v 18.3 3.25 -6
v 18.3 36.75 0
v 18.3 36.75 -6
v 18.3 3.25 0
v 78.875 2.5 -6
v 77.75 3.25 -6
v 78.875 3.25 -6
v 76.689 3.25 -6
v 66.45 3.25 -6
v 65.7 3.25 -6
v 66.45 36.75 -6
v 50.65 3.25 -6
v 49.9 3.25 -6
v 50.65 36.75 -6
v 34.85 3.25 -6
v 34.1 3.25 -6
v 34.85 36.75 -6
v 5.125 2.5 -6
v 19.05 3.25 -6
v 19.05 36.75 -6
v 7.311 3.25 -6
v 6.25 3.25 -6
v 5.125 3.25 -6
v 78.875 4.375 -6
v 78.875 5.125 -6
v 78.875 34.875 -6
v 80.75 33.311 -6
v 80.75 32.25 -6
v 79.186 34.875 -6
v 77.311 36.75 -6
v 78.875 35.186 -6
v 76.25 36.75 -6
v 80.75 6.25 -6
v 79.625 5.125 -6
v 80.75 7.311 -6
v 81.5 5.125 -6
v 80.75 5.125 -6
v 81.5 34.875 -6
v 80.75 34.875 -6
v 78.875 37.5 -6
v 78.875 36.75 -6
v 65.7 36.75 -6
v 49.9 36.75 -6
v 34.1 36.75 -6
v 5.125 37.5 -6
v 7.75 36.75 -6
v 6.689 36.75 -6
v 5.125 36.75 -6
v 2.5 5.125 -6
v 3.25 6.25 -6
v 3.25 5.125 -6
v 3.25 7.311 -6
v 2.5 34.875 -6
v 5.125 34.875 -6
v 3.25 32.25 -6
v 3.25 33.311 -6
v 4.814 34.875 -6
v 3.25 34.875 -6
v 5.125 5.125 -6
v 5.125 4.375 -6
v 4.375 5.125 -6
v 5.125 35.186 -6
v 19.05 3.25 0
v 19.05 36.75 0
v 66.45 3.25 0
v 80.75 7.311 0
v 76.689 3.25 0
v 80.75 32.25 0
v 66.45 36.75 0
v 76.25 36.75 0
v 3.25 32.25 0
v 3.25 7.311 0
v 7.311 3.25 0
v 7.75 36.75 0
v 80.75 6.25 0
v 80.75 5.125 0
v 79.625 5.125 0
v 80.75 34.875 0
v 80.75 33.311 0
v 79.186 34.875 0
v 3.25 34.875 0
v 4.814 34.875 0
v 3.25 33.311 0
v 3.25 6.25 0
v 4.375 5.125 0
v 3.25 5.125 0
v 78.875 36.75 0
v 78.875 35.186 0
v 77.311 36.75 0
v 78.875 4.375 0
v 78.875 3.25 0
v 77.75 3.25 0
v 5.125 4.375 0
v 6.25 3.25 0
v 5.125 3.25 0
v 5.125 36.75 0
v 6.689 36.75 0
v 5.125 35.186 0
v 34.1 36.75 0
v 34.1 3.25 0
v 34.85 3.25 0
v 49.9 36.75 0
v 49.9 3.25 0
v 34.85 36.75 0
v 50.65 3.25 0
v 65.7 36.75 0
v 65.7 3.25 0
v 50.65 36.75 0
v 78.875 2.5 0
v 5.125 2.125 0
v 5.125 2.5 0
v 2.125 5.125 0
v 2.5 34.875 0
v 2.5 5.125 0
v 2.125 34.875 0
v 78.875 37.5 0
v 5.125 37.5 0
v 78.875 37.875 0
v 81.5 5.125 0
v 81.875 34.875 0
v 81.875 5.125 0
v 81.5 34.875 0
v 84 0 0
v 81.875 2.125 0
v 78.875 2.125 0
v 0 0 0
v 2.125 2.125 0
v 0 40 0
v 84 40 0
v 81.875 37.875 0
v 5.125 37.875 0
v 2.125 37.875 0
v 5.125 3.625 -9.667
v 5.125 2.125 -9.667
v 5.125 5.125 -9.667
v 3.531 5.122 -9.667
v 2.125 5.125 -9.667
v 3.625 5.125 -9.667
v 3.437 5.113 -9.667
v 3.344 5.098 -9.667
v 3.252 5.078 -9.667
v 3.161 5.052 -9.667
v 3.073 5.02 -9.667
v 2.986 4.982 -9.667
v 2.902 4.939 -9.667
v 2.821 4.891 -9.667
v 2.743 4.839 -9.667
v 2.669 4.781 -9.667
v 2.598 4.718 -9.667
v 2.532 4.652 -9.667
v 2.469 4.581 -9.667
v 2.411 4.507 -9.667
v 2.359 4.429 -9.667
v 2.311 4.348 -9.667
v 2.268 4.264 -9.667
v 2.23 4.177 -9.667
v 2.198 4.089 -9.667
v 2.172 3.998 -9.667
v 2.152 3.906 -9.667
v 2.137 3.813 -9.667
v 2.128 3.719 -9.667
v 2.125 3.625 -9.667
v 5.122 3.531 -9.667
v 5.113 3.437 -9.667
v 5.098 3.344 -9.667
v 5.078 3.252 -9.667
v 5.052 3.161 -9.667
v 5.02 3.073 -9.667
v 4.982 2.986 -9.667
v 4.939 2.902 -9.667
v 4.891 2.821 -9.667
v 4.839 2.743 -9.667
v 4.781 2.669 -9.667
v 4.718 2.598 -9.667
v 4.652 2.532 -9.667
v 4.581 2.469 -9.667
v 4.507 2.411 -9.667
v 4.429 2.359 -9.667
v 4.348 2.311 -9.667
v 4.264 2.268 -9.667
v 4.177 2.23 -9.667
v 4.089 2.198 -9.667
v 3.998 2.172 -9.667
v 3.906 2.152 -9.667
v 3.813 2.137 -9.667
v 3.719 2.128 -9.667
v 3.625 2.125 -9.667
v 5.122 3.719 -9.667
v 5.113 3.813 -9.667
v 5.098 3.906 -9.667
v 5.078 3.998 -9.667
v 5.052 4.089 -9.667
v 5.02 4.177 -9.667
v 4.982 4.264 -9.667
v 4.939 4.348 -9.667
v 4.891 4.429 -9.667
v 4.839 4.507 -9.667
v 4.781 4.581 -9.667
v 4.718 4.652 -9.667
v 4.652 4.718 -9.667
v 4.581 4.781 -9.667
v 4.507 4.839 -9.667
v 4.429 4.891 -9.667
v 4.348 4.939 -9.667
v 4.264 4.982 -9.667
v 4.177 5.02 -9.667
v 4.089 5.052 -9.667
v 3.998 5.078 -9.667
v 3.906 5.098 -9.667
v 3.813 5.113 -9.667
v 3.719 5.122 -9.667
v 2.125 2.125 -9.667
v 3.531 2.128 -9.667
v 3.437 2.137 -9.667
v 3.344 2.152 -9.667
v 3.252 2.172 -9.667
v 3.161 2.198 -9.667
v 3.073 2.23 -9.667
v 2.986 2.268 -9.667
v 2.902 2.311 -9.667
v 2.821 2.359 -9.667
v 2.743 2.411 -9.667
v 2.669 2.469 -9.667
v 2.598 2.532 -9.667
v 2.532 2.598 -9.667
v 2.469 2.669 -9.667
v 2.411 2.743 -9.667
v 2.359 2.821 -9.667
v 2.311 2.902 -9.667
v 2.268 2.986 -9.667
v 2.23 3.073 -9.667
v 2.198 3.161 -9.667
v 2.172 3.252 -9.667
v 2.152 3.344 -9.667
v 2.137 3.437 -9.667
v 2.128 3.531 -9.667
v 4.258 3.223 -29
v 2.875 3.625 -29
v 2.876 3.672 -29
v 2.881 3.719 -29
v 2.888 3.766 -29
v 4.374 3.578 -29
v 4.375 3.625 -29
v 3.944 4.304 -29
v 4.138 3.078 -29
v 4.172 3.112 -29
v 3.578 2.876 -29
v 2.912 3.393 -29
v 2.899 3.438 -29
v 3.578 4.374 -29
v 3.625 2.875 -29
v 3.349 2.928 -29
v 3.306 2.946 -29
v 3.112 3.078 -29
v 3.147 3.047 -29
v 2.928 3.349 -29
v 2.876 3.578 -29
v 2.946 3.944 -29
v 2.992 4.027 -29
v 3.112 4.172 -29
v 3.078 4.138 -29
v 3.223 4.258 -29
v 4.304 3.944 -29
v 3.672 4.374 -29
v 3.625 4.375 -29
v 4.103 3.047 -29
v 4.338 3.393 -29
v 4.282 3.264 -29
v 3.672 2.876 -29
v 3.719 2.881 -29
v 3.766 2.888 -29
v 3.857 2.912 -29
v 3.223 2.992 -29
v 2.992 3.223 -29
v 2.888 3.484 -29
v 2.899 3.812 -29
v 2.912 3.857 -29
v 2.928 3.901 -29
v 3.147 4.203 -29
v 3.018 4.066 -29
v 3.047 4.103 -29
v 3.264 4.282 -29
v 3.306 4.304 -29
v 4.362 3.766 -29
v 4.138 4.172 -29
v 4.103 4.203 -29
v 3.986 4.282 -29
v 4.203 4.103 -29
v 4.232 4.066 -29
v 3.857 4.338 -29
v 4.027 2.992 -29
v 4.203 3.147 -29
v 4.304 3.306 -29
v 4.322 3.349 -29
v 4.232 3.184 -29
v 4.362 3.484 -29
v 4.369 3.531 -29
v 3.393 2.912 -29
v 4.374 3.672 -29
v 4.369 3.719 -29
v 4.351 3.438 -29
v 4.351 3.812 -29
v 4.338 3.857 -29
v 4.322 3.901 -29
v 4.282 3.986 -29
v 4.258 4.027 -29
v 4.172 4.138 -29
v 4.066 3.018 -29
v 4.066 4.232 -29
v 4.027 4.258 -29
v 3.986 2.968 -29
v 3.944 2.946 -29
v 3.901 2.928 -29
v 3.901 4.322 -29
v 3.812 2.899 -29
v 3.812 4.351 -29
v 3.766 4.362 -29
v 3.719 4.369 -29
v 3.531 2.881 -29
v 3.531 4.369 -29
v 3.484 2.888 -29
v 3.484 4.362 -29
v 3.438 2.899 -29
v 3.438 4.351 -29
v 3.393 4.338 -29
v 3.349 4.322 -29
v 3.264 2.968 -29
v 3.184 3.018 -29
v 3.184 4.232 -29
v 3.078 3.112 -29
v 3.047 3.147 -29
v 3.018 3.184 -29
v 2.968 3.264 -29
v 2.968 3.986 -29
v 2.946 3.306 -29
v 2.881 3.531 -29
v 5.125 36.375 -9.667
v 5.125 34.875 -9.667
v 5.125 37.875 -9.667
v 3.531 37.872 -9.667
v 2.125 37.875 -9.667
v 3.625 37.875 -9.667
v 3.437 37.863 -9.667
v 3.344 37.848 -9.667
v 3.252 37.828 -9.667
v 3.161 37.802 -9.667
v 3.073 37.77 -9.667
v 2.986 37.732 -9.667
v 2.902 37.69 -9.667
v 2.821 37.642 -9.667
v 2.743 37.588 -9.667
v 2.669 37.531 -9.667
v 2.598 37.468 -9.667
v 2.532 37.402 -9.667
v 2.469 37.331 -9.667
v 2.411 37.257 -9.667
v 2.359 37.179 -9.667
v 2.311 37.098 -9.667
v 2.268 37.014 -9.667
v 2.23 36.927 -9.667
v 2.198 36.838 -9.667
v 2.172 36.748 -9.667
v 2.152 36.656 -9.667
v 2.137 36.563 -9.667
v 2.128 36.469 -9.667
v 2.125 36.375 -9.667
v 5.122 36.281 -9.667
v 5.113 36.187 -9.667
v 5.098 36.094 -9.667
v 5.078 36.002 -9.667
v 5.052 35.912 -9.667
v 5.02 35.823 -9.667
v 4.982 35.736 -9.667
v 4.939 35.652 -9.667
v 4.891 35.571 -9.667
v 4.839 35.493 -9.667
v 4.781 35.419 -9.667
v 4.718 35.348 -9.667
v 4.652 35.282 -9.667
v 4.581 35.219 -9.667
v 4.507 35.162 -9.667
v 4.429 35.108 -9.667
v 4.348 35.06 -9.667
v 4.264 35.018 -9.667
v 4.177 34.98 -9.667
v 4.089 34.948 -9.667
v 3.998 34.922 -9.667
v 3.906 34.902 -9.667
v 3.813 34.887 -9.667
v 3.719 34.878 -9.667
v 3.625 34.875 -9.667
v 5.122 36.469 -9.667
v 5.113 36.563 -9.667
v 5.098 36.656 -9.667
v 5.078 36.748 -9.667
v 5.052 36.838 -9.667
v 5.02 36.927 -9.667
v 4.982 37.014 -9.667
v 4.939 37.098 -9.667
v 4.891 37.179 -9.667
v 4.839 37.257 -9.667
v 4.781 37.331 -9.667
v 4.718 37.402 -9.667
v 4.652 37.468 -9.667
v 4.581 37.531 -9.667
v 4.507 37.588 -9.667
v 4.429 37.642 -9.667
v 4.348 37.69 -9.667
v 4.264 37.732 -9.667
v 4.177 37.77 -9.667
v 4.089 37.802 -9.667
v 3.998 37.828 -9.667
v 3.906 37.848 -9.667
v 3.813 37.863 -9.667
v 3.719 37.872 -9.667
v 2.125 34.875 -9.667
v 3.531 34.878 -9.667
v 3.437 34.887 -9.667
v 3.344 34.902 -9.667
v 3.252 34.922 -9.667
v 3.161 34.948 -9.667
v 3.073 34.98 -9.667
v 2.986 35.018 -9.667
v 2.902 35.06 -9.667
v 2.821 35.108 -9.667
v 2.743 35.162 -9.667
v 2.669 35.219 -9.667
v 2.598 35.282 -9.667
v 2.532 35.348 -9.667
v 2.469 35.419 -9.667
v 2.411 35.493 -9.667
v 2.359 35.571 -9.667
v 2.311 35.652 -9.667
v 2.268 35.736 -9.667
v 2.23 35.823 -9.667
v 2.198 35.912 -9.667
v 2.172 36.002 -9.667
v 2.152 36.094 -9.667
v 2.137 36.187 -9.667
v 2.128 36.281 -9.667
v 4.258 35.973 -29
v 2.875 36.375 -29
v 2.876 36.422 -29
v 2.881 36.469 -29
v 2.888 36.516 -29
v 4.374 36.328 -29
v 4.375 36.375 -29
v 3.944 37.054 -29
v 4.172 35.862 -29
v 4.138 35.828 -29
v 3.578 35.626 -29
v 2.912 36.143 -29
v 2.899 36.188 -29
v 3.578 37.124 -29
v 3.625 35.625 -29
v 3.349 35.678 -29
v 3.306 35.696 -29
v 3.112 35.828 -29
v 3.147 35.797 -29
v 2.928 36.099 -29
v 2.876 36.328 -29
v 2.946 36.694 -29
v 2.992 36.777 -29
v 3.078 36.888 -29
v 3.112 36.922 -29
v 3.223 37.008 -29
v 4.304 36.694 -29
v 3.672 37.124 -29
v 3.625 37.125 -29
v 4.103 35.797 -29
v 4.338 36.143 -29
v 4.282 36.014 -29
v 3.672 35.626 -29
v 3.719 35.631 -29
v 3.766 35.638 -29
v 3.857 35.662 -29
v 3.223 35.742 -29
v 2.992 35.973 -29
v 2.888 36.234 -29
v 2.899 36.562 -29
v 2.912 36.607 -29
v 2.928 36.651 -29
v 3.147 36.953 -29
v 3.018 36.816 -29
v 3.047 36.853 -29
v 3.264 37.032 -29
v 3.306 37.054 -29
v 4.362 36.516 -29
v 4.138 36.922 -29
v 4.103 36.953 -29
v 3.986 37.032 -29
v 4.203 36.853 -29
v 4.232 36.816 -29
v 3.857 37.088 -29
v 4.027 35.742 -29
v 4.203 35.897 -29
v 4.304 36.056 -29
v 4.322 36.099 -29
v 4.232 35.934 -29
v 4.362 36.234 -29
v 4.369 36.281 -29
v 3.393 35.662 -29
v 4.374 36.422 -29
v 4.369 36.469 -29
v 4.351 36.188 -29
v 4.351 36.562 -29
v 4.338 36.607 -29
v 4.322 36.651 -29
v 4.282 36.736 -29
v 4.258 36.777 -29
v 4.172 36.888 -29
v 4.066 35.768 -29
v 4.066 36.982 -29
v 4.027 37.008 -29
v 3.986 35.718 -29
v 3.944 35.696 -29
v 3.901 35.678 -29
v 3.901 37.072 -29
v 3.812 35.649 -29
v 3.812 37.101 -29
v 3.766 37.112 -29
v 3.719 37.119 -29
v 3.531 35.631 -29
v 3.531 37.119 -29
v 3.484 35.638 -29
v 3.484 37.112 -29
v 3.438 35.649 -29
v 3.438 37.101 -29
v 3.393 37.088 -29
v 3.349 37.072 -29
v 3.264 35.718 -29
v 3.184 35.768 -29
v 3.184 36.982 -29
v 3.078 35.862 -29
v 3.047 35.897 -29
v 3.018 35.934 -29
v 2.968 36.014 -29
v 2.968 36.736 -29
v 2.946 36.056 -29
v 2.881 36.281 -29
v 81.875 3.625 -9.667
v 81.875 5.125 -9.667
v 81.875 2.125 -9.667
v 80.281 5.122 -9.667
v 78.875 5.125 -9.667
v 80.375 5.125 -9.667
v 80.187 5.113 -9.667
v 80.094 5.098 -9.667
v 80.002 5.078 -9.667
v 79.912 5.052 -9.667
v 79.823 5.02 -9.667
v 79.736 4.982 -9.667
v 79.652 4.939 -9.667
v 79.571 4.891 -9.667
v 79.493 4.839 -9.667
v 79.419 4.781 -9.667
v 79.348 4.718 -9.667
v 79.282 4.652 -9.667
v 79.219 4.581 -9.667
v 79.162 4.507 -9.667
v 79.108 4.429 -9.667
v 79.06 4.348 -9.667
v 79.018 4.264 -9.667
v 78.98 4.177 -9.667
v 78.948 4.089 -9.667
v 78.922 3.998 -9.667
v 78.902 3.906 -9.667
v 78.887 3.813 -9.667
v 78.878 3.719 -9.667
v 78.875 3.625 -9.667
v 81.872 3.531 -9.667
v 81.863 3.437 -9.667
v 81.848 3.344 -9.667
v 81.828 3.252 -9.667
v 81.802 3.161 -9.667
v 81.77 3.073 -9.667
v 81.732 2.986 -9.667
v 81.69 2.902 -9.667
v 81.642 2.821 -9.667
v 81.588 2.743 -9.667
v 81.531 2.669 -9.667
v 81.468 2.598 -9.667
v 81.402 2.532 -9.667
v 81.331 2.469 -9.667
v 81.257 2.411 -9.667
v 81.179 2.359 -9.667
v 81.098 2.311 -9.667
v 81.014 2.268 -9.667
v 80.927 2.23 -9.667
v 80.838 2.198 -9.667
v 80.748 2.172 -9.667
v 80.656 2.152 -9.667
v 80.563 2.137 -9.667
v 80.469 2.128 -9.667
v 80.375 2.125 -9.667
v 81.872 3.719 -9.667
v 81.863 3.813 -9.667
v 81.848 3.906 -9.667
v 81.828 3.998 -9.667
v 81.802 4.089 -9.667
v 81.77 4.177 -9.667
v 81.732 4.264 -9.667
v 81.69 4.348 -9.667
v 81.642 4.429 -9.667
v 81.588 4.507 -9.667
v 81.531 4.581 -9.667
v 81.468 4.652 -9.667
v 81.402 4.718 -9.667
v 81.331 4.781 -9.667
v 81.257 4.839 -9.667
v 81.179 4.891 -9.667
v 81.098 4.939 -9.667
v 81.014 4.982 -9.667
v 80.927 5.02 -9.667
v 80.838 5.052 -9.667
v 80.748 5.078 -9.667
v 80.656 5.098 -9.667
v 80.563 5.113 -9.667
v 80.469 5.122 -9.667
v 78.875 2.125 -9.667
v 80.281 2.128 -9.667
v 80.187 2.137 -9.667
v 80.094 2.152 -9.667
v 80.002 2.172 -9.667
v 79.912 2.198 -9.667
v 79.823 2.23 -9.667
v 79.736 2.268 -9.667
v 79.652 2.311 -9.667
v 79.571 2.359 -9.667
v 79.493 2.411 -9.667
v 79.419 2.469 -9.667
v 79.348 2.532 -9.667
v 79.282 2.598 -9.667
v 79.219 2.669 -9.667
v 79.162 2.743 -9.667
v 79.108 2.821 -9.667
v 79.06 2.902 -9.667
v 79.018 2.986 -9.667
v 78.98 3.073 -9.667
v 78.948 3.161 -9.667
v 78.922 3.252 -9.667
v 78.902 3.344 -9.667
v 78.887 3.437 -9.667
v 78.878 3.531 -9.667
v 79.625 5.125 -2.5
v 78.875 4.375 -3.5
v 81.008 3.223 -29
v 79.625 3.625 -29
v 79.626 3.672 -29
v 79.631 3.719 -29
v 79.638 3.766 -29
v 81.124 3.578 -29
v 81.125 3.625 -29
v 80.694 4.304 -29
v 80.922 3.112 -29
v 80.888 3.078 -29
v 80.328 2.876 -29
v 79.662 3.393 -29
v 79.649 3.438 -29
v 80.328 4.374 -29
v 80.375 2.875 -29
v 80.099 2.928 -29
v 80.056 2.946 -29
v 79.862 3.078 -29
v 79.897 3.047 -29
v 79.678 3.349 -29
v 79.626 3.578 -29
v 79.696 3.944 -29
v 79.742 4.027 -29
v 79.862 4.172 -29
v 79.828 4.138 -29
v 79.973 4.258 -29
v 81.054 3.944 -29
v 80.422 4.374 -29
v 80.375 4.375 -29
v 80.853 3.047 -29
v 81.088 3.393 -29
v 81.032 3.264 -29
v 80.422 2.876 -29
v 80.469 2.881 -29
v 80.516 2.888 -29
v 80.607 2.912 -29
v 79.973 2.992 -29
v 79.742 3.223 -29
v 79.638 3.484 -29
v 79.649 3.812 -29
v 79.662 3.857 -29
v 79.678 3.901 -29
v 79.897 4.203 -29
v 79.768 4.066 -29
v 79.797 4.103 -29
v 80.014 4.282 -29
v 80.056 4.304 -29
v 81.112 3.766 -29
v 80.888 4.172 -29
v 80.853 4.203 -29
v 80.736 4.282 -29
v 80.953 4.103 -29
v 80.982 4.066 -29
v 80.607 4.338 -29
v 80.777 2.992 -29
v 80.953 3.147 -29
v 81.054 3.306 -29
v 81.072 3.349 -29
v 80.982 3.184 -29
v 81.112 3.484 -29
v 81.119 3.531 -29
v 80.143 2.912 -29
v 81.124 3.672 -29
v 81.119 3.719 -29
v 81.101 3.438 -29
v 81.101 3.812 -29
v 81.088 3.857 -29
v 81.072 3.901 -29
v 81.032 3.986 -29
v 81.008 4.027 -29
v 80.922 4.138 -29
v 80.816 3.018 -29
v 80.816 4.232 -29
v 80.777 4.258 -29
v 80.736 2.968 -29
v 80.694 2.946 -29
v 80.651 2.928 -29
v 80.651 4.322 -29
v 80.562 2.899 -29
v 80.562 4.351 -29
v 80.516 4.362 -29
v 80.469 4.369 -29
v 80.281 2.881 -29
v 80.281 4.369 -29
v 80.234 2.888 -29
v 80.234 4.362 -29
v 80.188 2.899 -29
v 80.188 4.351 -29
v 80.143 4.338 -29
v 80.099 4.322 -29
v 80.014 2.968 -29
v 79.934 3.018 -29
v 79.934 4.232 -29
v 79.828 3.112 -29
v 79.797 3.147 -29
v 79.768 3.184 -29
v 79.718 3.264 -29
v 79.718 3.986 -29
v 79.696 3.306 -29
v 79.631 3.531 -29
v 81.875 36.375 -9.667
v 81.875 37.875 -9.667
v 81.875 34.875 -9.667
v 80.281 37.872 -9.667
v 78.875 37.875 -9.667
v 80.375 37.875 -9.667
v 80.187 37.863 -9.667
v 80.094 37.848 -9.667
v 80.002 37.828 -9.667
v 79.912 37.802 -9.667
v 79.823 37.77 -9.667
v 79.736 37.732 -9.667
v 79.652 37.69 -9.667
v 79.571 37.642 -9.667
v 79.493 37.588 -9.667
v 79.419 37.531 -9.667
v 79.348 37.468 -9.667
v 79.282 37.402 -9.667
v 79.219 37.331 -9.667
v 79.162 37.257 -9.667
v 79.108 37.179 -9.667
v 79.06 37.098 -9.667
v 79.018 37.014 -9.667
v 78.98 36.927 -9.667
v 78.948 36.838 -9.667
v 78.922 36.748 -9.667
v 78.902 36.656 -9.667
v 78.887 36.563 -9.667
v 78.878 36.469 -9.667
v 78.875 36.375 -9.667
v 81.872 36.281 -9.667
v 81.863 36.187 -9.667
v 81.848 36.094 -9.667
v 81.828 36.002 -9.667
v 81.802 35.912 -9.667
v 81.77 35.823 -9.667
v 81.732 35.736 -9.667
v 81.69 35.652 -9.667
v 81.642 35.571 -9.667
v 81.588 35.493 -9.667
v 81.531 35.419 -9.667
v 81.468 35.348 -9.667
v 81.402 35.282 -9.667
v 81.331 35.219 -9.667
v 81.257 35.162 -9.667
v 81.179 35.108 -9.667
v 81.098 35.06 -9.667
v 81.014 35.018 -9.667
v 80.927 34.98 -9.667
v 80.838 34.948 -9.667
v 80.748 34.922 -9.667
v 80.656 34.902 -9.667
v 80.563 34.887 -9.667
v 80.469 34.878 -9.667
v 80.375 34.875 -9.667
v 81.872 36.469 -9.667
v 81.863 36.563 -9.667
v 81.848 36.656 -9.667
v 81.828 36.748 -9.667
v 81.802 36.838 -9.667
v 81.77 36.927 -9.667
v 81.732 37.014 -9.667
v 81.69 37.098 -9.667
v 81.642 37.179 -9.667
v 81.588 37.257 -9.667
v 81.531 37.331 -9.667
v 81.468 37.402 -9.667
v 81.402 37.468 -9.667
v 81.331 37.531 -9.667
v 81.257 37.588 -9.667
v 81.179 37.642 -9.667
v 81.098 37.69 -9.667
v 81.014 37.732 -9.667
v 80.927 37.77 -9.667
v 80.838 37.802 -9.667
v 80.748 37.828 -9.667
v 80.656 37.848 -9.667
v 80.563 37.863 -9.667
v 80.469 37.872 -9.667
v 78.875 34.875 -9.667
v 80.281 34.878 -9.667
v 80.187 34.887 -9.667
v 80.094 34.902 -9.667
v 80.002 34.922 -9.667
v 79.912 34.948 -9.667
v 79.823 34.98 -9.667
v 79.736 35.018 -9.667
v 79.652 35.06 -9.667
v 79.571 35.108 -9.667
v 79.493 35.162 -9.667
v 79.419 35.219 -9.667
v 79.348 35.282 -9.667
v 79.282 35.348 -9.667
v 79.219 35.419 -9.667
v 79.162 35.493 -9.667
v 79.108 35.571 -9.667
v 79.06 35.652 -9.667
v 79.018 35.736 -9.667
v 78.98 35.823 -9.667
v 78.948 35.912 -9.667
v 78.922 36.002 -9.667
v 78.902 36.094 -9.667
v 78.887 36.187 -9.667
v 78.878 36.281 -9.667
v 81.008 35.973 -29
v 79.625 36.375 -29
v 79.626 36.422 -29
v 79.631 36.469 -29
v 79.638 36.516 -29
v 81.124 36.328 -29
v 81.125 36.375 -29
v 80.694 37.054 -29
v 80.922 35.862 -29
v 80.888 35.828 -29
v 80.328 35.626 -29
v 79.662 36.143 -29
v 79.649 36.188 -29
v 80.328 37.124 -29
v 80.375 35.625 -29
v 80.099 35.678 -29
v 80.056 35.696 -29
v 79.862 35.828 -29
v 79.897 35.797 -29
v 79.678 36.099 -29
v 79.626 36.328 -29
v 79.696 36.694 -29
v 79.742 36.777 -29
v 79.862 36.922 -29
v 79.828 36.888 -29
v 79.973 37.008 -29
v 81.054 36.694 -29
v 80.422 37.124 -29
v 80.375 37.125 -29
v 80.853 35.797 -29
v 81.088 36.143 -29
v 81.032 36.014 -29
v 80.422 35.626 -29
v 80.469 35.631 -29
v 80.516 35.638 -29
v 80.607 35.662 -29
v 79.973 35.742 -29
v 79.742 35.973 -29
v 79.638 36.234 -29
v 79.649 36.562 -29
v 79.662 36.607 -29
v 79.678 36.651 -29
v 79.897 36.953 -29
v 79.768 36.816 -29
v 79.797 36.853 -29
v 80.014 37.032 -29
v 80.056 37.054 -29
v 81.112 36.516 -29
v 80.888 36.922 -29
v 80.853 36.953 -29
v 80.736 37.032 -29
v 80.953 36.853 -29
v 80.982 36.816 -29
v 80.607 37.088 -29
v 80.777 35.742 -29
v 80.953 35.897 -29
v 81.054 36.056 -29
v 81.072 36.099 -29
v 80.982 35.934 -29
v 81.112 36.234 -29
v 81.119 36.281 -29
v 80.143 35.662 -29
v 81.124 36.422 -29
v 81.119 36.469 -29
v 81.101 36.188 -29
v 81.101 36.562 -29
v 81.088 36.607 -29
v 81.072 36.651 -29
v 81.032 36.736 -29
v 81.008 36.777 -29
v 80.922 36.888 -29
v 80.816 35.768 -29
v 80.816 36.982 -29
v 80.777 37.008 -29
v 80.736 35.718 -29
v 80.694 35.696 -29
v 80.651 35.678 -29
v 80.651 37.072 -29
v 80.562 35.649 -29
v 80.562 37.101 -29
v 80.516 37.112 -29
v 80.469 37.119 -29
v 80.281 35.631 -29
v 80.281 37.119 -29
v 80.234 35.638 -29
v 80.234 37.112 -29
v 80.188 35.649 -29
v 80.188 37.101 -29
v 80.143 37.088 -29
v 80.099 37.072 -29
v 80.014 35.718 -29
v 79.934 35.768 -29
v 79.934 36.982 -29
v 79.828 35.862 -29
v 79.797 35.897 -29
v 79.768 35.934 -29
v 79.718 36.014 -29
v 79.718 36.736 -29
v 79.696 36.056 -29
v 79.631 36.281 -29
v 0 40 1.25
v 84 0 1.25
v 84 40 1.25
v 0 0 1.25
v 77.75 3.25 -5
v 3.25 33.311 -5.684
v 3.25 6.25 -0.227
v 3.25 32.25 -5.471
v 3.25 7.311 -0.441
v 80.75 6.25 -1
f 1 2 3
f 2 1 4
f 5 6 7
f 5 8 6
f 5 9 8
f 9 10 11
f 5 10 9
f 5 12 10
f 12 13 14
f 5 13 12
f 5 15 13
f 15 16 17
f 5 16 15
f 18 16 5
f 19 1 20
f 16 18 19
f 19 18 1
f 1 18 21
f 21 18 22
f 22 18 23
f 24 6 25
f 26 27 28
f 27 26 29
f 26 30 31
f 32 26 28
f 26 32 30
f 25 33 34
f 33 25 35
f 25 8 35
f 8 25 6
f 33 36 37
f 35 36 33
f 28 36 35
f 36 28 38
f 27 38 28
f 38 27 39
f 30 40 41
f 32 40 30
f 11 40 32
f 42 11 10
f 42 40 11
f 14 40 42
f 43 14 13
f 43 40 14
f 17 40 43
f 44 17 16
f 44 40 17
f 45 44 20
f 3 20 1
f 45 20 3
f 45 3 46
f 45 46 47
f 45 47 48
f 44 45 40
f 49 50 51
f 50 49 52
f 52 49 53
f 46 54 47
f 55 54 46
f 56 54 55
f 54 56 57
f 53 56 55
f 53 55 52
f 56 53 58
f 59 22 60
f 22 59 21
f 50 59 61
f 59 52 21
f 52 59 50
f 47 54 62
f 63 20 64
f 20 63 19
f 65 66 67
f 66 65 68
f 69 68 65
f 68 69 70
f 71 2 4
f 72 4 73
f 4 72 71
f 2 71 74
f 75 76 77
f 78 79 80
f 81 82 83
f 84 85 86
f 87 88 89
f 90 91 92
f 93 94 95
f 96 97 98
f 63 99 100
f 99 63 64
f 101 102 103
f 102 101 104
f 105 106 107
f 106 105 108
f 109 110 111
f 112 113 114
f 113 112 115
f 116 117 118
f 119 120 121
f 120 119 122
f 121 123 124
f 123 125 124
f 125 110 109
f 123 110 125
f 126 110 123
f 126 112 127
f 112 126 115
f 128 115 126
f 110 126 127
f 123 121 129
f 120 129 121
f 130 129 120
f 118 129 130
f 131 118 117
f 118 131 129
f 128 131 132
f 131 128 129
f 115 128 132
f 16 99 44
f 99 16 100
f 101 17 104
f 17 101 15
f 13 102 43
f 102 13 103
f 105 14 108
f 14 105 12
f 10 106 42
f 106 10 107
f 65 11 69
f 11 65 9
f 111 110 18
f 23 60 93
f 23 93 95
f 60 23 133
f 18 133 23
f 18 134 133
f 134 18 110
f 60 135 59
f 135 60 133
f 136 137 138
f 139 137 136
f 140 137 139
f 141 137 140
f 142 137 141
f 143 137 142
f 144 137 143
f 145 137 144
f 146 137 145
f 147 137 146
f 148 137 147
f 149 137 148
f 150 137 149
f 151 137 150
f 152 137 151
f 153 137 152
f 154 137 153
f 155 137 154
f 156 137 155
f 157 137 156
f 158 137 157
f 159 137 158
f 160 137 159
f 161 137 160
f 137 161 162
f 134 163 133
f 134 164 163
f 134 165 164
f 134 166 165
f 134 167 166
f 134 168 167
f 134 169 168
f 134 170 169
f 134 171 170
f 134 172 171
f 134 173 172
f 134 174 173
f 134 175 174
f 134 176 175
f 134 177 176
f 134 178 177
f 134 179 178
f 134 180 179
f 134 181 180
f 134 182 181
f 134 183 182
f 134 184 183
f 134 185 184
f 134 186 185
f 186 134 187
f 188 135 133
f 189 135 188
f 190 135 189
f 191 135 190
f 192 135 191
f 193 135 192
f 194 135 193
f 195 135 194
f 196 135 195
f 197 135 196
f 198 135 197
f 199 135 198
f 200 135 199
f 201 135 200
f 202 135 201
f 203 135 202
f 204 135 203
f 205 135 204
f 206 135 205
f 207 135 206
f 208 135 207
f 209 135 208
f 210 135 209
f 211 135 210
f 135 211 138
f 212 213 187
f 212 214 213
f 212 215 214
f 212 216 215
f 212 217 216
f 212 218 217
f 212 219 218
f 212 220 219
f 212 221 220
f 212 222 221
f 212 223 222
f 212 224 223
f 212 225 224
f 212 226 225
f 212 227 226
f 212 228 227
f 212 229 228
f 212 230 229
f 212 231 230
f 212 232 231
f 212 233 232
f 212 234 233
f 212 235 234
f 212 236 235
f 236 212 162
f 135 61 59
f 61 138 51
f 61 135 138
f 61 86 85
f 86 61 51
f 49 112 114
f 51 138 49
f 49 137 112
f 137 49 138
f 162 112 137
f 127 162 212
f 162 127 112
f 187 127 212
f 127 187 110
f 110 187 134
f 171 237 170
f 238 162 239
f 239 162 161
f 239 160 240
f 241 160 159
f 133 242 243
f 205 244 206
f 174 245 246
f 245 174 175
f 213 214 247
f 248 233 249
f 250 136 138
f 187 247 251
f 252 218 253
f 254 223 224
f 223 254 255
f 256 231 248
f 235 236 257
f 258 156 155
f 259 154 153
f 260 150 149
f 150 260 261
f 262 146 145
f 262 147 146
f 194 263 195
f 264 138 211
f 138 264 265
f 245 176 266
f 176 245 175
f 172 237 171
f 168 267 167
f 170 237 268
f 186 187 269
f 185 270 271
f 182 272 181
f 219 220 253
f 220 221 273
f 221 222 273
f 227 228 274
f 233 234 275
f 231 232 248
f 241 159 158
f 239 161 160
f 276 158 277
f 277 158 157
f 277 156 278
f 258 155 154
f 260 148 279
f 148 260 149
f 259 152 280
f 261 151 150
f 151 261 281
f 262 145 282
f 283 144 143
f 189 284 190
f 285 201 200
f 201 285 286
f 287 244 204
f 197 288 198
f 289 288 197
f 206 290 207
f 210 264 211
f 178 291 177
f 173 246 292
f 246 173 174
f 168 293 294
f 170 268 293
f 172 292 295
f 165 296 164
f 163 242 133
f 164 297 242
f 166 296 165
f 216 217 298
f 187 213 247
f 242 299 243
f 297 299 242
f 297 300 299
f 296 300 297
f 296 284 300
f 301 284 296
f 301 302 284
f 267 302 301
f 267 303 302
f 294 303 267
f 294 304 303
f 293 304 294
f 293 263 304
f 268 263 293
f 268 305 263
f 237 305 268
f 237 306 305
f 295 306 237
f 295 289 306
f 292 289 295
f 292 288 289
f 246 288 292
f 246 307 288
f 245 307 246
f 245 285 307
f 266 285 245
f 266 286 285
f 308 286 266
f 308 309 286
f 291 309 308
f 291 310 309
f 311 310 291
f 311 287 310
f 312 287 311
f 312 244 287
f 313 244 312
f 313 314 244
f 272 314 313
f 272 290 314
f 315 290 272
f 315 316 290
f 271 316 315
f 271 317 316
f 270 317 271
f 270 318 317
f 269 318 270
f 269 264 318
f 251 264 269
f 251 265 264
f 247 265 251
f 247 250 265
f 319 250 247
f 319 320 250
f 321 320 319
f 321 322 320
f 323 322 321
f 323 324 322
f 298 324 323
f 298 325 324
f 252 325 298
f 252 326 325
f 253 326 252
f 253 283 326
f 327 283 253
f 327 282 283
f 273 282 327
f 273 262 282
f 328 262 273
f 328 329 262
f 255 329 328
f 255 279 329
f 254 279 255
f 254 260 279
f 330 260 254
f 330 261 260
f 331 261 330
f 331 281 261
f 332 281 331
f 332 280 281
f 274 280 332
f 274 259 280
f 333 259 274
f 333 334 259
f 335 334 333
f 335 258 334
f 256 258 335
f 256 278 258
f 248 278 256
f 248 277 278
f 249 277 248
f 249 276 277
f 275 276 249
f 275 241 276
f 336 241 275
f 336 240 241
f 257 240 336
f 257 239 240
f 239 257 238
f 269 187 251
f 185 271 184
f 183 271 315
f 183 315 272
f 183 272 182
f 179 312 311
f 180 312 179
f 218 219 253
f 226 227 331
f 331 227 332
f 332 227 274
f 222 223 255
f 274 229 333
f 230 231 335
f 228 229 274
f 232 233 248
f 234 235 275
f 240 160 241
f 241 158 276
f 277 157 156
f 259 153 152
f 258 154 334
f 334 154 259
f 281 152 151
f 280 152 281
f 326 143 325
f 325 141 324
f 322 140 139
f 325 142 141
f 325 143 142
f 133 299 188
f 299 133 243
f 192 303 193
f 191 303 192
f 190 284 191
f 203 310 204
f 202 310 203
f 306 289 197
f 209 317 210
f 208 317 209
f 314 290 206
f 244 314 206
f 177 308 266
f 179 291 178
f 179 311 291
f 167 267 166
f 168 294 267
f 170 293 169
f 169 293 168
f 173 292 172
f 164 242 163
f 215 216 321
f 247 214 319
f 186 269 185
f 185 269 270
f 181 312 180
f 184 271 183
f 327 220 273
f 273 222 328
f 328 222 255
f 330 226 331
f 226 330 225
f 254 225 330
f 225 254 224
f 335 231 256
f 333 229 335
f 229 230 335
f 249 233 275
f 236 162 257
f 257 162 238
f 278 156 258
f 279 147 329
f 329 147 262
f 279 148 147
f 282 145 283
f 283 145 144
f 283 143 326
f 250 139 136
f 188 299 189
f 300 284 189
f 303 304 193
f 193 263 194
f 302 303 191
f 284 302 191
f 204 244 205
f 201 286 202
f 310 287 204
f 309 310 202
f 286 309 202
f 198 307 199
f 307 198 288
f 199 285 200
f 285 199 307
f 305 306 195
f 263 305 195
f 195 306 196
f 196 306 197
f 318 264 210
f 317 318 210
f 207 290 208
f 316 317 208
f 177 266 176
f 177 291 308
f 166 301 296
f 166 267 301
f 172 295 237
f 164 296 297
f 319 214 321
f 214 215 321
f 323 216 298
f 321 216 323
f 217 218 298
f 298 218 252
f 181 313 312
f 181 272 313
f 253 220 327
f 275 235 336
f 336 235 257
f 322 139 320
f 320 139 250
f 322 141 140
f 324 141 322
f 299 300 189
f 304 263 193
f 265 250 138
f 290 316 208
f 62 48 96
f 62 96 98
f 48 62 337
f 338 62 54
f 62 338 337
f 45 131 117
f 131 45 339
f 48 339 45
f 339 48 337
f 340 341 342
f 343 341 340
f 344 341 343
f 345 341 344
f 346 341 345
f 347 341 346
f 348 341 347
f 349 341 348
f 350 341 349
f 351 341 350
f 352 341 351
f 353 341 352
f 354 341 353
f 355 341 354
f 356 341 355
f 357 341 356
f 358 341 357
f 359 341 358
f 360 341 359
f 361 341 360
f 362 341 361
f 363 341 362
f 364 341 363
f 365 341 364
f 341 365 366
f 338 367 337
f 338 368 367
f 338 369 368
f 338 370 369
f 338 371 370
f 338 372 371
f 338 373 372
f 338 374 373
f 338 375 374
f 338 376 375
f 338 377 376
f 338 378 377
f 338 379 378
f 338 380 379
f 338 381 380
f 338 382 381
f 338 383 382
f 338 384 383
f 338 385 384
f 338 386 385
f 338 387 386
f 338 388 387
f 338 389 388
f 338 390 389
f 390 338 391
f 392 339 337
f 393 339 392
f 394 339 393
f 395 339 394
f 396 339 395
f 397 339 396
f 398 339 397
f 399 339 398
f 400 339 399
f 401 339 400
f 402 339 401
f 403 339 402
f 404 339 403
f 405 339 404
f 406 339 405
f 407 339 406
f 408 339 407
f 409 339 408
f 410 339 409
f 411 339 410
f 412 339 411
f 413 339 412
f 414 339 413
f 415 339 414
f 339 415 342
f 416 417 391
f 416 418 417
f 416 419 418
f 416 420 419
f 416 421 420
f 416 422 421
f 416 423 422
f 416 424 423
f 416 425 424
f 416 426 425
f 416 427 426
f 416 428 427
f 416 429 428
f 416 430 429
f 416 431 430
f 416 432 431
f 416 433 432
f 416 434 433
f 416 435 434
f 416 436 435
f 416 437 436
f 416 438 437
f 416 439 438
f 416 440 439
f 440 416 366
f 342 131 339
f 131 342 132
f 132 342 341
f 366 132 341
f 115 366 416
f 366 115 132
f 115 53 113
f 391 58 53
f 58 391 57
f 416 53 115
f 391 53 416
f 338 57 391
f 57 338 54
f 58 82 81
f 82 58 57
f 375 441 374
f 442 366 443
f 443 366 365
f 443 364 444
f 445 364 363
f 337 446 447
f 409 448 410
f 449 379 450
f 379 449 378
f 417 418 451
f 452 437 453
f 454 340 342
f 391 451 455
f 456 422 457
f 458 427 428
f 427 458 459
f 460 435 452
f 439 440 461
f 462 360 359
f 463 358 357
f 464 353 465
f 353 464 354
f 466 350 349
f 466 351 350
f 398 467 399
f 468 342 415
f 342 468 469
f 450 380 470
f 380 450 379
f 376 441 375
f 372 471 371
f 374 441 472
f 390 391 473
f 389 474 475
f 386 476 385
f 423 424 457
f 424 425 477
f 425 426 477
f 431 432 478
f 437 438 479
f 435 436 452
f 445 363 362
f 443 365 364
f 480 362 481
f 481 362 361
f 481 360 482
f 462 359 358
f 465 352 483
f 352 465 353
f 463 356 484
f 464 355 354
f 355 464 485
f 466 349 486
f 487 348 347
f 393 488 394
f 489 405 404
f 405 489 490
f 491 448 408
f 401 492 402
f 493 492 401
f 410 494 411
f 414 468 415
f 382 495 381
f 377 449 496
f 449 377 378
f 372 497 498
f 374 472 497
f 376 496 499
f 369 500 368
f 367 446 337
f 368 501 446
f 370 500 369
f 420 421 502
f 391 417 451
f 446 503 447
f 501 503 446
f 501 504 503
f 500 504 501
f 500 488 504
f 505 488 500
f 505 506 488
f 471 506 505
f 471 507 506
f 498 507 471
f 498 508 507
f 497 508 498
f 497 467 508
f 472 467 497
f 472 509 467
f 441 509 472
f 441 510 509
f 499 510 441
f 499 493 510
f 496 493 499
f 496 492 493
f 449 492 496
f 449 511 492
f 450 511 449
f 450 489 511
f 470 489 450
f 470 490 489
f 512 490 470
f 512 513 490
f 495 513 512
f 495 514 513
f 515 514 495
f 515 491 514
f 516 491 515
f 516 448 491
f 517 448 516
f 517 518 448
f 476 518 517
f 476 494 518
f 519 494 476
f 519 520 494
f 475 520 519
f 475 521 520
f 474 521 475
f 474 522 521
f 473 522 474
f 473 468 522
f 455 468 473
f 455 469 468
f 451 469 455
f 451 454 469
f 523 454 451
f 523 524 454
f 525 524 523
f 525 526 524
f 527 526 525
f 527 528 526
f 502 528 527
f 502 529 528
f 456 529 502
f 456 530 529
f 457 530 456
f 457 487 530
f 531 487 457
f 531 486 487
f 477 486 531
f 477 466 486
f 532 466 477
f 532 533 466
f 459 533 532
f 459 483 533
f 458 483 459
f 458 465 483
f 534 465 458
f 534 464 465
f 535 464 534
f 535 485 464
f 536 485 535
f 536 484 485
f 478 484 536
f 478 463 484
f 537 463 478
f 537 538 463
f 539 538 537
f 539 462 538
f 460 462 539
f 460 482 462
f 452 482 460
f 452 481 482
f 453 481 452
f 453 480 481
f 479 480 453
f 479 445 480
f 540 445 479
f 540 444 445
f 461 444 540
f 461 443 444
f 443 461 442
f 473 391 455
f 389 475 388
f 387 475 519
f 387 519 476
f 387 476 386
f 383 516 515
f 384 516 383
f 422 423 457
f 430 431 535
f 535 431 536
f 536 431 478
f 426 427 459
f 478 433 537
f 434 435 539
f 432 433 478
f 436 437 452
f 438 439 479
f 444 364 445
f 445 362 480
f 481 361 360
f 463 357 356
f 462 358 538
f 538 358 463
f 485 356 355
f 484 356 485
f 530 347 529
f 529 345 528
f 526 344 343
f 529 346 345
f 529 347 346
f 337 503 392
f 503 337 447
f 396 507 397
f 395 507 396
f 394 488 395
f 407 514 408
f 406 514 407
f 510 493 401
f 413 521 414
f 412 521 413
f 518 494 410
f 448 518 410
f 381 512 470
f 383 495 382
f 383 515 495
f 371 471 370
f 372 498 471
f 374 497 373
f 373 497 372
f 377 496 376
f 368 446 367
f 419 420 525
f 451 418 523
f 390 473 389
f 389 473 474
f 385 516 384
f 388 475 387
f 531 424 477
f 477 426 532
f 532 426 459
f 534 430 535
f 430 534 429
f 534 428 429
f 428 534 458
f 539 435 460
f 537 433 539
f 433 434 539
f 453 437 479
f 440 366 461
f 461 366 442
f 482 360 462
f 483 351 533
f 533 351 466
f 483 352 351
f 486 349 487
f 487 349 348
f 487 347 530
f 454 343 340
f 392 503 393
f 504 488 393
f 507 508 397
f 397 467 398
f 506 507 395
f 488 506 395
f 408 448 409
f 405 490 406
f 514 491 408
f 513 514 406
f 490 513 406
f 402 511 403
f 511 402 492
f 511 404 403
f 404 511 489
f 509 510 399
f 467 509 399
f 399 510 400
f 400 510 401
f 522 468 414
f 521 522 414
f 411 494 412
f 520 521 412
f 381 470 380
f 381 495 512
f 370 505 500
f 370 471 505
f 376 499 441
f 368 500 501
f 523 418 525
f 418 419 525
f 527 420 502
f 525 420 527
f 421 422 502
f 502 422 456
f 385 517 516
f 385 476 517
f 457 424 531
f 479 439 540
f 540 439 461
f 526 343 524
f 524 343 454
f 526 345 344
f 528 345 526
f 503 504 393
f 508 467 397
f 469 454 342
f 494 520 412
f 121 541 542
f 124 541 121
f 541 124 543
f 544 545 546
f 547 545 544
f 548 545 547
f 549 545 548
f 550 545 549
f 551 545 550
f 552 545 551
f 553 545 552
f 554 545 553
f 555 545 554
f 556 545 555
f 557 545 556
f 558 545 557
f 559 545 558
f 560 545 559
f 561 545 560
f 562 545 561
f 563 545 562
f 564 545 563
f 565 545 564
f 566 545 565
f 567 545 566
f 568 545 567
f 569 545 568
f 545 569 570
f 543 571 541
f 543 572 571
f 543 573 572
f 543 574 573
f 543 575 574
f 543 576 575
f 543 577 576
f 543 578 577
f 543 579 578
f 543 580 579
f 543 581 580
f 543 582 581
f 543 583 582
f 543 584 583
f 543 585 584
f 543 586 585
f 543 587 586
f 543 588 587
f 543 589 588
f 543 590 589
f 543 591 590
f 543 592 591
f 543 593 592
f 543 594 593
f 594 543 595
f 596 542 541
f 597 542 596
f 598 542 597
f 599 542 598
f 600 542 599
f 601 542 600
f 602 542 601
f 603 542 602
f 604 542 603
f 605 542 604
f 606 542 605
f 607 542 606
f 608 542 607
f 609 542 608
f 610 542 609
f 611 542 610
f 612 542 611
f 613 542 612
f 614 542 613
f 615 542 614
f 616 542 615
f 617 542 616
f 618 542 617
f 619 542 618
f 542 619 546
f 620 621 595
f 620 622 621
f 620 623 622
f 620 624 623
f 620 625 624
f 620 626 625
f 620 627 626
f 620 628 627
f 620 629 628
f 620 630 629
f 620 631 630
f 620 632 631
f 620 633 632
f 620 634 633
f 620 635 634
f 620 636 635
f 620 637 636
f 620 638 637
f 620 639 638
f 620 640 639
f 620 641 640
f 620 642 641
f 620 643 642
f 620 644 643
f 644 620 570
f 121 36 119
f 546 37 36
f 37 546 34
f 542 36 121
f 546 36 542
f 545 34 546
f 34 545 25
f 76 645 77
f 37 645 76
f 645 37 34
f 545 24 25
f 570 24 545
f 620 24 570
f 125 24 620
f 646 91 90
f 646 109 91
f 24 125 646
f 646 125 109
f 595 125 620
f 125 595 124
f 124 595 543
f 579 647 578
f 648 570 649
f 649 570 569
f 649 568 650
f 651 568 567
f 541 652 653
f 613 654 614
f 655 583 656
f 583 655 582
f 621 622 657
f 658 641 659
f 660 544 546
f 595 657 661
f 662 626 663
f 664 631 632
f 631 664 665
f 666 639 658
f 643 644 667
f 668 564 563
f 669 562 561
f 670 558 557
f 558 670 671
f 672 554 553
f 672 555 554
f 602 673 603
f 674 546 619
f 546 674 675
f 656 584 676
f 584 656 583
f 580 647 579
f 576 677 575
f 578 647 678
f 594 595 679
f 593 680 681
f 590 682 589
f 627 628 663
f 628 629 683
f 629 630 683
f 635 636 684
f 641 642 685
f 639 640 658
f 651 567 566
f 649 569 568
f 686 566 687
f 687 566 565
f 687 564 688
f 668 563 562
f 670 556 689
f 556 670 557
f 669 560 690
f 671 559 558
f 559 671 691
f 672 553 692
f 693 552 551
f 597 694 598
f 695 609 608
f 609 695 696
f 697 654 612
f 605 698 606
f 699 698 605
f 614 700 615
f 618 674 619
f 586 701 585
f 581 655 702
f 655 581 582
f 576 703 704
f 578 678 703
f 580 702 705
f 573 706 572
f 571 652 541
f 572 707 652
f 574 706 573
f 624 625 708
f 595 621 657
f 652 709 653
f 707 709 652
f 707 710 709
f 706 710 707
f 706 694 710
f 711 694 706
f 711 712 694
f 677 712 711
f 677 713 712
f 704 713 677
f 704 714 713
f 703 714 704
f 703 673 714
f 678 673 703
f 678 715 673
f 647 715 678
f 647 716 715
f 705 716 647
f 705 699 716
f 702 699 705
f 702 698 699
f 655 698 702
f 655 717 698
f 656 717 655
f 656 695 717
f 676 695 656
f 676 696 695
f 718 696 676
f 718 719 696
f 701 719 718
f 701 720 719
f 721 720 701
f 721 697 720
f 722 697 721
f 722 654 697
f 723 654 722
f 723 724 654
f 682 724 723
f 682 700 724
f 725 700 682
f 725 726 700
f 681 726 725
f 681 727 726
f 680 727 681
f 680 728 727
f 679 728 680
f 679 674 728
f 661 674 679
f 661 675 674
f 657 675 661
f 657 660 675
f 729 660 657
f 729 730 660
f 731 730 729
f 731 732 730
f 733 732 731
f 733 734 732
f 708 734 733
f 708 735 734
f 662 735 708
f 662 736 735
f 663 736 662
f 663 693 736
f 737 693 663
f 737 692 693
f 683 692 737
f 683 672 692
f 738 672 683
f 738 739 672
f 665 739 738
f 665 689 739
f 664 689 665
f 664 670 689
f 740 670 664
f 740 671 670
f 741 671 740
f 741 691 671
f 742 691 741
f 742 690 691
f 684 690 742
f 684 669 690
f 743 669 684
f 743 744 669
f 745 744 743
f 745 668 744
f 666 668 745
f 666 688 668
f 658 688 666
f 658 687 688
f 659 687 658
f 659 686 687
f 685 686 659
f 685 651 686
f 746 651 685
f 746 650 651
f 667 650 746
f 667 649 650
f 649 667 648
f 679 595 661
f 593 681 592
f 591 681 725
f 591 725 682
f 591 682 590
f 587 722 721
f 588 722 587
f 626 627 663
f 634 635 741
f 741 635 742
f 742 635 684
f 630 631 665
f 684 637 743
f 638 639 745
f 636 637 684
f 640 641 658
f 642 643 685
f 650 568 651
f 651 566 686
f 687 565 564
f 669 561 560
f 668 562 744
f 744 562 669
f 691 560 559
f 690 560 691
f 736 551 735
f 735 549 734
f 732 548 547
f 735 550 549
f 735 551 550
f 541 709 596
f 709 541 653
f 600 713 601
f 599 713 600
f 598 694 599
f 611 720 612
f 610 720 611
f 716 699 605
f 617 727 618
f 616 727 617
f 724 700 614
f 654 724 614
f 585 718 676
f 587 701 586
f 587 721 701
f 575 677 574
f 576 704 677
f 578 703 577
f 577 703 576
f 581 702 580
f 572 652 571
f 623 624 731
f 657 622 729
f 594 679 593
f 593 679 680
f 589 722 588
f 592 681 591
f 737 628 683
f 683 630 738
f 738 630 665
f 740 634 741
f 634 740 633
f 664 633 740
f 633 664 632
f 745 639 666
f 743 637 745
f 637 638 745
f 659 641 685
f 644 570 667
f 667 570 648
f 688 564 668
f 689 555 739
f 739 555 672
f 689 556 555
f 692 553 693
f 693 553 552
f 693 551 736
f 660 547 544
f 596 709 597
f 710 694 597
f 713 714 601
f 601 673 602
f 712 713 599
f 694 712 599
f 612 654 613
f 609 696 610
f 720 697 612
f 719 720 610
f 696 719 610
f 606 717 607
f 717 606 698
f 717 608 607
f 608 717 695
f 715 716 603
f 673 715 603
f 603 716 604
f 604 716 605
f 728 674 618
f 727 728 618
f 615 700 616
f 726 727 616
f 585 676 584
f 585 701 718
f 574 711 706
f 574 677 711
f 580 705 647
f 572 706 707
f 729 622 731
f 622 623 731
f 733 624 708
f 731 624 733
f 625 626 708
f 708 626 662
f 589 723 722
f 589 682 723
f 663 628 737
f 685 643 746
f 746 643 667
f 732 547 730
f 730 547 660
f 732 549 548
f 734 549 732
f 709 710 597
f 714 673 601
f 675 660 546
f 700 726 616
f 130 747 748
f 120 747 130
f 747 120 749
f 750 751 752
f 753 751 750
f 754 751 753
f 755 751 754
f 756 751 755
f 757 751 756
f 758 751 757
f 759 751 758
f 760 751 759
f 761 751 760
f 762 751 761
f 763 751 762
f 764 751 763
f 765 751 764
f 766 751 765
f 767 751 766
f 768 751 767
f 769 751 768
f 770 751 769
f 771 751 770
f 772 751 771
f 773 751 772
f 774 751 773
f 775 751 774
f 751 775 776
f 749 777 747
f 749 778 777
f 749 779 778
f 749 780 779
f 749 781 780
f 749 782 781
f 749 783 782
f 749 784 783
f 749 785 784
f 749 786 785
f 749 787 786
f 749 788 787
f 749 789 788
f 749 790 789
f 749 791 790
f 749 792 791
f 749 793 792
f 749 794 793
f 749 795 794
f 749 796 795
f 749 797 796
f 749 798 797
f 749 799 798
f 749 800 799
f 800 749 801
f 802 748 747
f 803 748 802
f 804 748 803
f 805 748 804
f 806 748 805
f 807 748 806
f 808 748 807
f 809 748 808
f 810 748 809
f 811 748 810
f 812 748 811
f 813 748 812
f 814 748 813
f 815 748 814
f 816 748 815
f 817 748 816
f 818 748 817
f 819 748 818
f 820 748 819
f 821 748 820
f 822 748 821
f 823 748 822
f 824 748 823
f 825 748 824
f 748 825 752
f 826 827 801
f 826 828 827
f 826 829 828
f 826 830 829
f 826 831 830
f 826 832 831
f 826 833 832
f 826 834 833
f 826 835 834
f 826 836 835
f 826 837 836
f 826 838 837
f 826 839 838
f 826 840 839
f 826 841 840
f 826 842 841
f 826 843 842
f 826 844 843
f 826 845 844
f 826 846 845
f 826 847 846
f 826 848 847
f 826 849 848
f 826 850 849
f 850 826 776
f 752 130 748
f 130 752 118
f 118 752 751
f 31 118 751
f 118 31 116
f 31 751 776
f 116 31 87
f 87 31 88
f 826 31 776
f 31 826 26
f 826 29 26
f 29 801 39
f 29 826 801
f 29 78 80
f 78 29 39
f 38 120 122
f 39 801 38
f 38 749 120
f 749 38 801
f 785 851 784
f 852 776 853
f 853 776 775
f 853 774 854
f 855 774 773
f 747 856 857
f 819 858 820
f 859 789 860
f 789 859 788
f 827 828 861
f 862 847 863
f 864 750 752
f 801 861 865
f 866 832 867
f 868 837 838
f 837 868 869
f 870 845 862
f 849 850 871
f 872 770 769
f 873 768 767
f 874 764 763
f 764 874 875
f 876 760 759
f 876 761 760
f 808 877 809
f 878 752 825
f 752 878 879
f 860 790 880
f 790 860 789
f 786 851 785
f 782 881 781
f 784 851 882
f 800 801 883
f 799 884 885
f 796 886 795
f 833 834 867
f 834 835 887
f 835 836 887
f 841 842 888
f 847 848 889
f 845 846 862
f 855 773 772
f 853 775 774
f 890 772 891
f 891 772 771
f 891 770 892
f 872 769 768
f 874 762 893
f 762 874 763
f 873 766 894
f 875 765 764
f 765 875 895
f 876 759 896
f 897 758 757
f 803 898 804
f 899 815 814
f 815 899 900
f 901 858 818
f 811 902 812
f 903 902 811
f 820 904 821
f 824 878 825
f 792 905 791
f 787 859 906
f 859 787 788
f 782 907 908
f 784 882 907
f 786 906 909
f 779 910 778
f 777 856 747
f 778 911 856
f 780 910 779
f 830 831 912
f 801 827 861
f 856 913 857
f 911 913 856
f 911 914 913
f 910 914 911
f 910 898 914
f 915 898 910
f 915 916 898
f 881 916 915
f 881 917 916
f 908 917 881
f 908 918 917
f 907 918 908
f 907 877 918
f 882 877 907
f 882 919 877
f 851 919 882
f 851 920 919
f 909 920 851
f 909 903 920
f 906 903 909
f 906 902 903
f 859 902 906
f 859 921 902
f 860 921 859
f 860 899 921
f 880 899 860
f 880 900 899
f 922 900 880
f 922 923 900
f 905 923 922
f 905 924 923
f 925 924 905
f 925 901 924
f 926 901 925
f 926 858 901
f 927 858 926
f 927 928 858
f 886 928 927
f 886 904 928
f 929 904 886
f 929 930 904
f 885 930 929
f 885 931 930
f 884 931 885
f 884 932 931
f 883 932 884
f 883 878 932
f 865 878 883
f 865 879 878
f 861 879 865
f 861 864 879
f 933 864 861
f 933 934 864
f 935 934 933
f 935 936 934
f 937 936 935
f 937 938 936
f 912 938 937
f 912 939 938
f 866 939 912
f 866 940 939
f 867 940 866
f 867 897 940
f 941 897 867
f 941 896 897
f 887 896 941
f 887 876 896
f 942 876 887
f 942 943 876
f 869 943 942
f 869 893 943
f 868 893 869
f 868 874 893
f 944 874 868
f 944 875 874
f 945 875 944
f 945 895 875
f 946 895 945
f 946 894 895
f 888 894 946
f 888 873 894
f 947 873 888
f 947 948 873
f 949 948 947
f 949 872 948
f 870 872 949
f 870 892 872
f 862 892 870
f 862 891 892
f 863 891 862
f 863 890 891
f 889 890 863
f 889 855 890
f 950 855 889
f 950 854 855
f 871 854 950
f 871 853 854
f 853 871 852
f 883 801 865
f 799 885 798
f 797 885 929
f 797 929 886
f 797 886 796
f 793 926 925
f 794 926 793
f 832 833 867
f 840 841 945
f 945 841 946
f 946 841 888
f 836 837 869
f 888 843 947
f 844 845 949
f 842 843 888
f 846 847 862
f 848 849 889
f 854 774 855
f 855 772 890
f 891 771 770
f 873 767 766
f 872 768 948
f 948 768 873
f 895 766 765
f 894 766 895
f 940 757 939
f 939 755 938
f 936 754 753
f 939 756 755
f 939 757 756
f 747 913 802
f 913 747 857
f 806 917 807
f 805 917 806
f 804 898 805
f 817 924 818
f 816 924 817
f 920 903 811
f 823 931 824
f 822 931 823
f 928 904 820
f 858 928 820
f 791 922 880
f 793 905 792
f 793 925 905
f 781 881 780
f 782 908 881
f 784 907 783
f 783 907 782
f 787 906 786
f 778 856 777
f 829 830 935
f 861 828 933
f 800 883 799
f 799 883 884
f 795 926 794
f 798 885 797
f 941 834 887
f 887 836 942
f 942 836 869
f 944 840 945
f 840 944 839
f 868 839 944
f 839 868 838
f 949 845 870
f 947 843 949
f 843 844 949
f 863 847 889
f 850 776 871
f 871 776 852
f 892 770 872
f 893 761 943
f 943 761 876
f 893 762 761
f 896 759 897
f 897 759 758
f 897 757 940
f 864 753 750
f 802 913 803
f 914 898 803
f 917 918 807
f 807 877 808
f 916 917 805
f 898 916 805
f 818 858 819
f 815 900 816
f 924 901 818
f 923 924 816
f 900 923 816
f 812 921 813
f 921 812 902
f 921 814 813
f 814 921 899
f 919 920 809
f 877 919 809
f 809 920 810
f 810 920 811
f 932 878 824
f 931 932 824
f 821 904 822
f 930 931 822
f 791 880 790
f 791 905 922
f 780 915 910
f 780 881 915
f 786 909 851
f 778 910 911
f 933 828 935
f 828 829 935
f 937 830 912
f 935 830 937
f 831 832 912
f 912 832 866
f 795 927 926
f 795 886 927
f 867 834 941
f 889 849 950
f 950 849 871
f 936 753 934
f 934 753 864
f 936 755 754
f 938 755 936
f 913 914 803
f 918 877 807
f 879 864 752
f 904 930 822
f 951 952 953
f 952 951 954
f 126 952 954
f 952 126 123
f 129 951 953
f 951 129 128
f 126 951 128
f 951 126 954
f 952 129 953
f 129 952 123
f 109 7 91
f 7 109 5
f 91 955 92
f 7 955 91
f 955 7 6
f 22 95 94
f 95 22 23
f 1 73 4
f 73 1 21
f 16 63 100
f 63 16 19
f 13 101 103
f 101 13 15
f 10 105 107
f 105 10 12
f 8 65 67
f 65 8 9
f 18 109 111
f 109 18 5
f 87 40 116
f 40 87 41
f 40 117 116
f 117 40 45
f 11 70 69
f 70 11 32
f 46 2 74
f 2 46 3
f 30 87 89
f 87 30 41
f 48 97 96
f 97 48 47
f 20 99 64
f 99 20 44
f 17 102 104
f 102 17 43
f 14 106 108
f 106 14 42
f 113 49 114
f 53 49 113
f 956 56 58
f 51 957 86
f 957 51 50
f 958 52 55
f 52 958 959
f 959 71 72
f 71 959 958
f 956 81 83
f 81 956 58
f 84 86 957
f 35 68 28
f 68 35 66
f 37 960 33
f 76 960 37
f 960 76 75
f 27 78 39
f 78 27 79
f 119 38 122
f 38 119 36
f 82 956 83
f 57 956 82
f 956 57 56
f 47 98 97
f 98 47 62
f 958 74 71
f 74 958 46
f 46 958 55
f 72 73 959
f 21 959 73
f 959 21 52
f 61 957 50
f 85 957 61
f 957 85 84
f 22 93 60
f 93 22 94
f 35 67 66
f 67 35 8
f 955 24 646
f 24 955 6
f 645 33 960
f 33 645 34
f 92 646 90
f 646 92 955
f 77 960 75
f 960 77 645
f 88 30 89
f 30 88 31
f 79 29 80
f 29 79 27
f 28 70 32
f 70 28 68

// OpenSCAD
boards_in_top = 8;
table_top_thickness = 5/4;

leg_offset = 3/8;
leg_length = 29;
leg_width = 3;

apron_thickness = .75;
apron_width = 6;
apron_overhang = 2.5;
apron_tenon_length = 3/8;
apron_overhang_end = apron_overhang;

table_height = 30;
table_length = 12 * 7;
table_width = 40;

breadboard_width = 12;
breadboard_tenon_length = 2.5;
breadboard_mortice_length = 1.25;
breadboard_tenon_thickness = table_top_thickness / 2;
breadboard_tenon_shoulder_length = table_top_thickness;

color( "SaddleBrown" ) union() {
    tabletop();
}

color( "white" ) union() {
    apron();
    legs();
}

module board( size, label = false ) {
    // size[0] is always with the grain.
    // size[1] is against the grain.
    // size[2] is the board thickness.
    
    cube( size = size );
    
    // Output the size of the board for easy cut lists.
    echo( str( size[2], " ", label, ": ", size[0], "x", size[1], " ", (size[0] * size[1] * size[2] / 144), " board feet" ) );
}

module leg() {
    square_length = leg_length / 3;
    taper_length = leg_length * 2 / 3;
    rotate( [ 0, 90, 0 ] ) union() {        
        cube( size = [ square_length, leg_width, leg_width ] );
        translate( [ square_length, leg_width / 2, leg_width / 2 ] ) rotate( [ 0, 90, 0 ] ) cylinder( r1 = leg_width / 2, r2 = leg_width / 4, h = taper_length, $fn = 100 );
    }
}

module apron() {
    // Long apron pieces.
    translate( [ apron_overhang_end + leg_width - leg_offset, apron_overhang, 0 ] ) rotate( [ -90, 0, 0 ] ) board( size = [ table_length - ( apron_overhang_end * 2 ) - ( leg_width * 2 ) + ( leg_offset * 2 ), apron_width, apron_thickness ], label="apron" );
    translate( [ apron_overhang_end + leg_width - leg_offset, table_width - apron_thickness - apron_overhang, 0 ] ) rotate( [ -90, 0, 0 ] ) board( size = [ table_length - ( apron_overhang_end * 2 ) - ( leg_width * 2 ) + ( leg_offset * 2 ), apron_width, apron_thickness ], label="apron" );

    // Short apron sides.
    translate( [ apron_thickness + apron_overhang_end, apron_overhang - leg_offset + leg_width, 0 ] ) rotate( [ -90, 0, 90 ] ) board( size = [ table_width - ( apron_overhang * 2 ) + ( leg_offset * 2 ) - ( leg_width * 2 ), apron_width, apron_thickness ], label="apron" );
    translate( [ table_length - apron_overhang_end, apron_overhang + leg_width - leg_offset, 0 ] ) rotate( [ -90, 0, 90 ] ) board( size = [ table_width - ( apron_overhang * 2 ) + ( leg_offset * 2 ) - ( leg_width * 2 ), apron_width, apron_thickness ], label="apron" );

    apron_reinforcements = ceil(max( 0, ( table_length - ( apron_overhang_end * 2 ) - ( apron_thickness * 2 ) ) / 24 ));

    for ( i = [ 1 : apron_reinforcements ] ) {
        translate( [ apron_overhang_end + ( apron_thickness ) + ( i * ( table_length - ( 2 * apron_overhang_end ) ) / ( apron_reinforcements + 1 )), apron_overhang + apron_tenon_length, 0 ] ) rotate( [ -90, 0, 90 ] ) board( size = [ table_width - ( apron_overhang * 2 ) - ( apron_thickness * 2 ) + ( apron_tenon_length * 2 ), apron_width, apron_thickness ], label="apron" );
    }
    
    leg_bracket_a = ( leg_width - leg_offset ) * 2 - apron_thickness;
    leg_bracket_length = sqrt( pow( leg_bracket_a, 2 ) * 2 );

    // The corner brackets for attaching the legs.
    translate( [ apron_overhang + apron_thickness, table_width - apron_overhang - leg_bracket_a - apron_thickness, 0 ] ) rotate( [ -90, 0, 45 ] ) board( size = [ leg_bracket_length, apron_width, apron_thickness ], label = "leg bracket" );
    translate( [ apron_overhang, apron_overhang + leg_bracket_a, 0 ] ) rotate( [ -90, 0, -45 ] ) board( size = [ leg_bracket_length, apron_width, apron_thickness ], label = "leg bracket" );
    translate( [ table_length - leg_bracket_a - apron_overhang, apron_overhang, 0 ] ) rotate( [ -90, 0, 45 ] ) board( size = [ leg_bracket_length, apron_width, apron_thickness ], label = "leg bracket" );
    translate( [ table_length - leg_bracket_a - apron_overhang - apron_thickness, table_width - apron_overhang - apron_thickness, 0 ] ) rotate( [ -90, 0, -45 ] ) board( size = [ leg_bracket_length, apron_width, apron_thickness ], label = "leg bracket" );

}

module legs() {
    translate( [ apron_overhang_end - leg_offset, 0, 0 ] ) union() {
        translate( [ 0, apron_overhang - leg_offset, 0 ] ) leg();
        translate( [ 0, table_width - leg_width - apron_overhang + leg_offset, 0 ] ) leg();
    }
    
    translate( [ table_length - apron_overhang_end - leg_width + leg_offset, 0, 0 ] ) union() {
        translate( [ 0, apron_overhang - leg_offset, 0 ] ) leg();
        translate( [ 0, table_width - leg_width - apron_overhang + leg_offset, 0 ] ) leg();
    }
}

module tabletop() {
    for ( i = [ 1 : boards_in_top ] ) {
        translate( [ breadboard_width - breadboard_tenon_length, ( table_width * ( i - 1 ) ) / boards_in_top, 0 ] ) board( size = [ table_length - ( breadboard_width * 2 ) + (         breadboard_tenon_length * 2 ), ( table_width / boards_in_top ), table_top_thickness ], label="top" );
    }

    translate( [ breadboard_width, 0, 0 ] ) rotate( [ 0, 0, 90 ] ) board( size = [ table_width, breadboard_width, table_top_thickness ], label="top");
    translate( [ table_length, 0, 0 ] ) rotate( [ 0, 0, 90 ] ) board( size = [ table_width, breadboard_width, table_top_thickness ], label="top" );
}
